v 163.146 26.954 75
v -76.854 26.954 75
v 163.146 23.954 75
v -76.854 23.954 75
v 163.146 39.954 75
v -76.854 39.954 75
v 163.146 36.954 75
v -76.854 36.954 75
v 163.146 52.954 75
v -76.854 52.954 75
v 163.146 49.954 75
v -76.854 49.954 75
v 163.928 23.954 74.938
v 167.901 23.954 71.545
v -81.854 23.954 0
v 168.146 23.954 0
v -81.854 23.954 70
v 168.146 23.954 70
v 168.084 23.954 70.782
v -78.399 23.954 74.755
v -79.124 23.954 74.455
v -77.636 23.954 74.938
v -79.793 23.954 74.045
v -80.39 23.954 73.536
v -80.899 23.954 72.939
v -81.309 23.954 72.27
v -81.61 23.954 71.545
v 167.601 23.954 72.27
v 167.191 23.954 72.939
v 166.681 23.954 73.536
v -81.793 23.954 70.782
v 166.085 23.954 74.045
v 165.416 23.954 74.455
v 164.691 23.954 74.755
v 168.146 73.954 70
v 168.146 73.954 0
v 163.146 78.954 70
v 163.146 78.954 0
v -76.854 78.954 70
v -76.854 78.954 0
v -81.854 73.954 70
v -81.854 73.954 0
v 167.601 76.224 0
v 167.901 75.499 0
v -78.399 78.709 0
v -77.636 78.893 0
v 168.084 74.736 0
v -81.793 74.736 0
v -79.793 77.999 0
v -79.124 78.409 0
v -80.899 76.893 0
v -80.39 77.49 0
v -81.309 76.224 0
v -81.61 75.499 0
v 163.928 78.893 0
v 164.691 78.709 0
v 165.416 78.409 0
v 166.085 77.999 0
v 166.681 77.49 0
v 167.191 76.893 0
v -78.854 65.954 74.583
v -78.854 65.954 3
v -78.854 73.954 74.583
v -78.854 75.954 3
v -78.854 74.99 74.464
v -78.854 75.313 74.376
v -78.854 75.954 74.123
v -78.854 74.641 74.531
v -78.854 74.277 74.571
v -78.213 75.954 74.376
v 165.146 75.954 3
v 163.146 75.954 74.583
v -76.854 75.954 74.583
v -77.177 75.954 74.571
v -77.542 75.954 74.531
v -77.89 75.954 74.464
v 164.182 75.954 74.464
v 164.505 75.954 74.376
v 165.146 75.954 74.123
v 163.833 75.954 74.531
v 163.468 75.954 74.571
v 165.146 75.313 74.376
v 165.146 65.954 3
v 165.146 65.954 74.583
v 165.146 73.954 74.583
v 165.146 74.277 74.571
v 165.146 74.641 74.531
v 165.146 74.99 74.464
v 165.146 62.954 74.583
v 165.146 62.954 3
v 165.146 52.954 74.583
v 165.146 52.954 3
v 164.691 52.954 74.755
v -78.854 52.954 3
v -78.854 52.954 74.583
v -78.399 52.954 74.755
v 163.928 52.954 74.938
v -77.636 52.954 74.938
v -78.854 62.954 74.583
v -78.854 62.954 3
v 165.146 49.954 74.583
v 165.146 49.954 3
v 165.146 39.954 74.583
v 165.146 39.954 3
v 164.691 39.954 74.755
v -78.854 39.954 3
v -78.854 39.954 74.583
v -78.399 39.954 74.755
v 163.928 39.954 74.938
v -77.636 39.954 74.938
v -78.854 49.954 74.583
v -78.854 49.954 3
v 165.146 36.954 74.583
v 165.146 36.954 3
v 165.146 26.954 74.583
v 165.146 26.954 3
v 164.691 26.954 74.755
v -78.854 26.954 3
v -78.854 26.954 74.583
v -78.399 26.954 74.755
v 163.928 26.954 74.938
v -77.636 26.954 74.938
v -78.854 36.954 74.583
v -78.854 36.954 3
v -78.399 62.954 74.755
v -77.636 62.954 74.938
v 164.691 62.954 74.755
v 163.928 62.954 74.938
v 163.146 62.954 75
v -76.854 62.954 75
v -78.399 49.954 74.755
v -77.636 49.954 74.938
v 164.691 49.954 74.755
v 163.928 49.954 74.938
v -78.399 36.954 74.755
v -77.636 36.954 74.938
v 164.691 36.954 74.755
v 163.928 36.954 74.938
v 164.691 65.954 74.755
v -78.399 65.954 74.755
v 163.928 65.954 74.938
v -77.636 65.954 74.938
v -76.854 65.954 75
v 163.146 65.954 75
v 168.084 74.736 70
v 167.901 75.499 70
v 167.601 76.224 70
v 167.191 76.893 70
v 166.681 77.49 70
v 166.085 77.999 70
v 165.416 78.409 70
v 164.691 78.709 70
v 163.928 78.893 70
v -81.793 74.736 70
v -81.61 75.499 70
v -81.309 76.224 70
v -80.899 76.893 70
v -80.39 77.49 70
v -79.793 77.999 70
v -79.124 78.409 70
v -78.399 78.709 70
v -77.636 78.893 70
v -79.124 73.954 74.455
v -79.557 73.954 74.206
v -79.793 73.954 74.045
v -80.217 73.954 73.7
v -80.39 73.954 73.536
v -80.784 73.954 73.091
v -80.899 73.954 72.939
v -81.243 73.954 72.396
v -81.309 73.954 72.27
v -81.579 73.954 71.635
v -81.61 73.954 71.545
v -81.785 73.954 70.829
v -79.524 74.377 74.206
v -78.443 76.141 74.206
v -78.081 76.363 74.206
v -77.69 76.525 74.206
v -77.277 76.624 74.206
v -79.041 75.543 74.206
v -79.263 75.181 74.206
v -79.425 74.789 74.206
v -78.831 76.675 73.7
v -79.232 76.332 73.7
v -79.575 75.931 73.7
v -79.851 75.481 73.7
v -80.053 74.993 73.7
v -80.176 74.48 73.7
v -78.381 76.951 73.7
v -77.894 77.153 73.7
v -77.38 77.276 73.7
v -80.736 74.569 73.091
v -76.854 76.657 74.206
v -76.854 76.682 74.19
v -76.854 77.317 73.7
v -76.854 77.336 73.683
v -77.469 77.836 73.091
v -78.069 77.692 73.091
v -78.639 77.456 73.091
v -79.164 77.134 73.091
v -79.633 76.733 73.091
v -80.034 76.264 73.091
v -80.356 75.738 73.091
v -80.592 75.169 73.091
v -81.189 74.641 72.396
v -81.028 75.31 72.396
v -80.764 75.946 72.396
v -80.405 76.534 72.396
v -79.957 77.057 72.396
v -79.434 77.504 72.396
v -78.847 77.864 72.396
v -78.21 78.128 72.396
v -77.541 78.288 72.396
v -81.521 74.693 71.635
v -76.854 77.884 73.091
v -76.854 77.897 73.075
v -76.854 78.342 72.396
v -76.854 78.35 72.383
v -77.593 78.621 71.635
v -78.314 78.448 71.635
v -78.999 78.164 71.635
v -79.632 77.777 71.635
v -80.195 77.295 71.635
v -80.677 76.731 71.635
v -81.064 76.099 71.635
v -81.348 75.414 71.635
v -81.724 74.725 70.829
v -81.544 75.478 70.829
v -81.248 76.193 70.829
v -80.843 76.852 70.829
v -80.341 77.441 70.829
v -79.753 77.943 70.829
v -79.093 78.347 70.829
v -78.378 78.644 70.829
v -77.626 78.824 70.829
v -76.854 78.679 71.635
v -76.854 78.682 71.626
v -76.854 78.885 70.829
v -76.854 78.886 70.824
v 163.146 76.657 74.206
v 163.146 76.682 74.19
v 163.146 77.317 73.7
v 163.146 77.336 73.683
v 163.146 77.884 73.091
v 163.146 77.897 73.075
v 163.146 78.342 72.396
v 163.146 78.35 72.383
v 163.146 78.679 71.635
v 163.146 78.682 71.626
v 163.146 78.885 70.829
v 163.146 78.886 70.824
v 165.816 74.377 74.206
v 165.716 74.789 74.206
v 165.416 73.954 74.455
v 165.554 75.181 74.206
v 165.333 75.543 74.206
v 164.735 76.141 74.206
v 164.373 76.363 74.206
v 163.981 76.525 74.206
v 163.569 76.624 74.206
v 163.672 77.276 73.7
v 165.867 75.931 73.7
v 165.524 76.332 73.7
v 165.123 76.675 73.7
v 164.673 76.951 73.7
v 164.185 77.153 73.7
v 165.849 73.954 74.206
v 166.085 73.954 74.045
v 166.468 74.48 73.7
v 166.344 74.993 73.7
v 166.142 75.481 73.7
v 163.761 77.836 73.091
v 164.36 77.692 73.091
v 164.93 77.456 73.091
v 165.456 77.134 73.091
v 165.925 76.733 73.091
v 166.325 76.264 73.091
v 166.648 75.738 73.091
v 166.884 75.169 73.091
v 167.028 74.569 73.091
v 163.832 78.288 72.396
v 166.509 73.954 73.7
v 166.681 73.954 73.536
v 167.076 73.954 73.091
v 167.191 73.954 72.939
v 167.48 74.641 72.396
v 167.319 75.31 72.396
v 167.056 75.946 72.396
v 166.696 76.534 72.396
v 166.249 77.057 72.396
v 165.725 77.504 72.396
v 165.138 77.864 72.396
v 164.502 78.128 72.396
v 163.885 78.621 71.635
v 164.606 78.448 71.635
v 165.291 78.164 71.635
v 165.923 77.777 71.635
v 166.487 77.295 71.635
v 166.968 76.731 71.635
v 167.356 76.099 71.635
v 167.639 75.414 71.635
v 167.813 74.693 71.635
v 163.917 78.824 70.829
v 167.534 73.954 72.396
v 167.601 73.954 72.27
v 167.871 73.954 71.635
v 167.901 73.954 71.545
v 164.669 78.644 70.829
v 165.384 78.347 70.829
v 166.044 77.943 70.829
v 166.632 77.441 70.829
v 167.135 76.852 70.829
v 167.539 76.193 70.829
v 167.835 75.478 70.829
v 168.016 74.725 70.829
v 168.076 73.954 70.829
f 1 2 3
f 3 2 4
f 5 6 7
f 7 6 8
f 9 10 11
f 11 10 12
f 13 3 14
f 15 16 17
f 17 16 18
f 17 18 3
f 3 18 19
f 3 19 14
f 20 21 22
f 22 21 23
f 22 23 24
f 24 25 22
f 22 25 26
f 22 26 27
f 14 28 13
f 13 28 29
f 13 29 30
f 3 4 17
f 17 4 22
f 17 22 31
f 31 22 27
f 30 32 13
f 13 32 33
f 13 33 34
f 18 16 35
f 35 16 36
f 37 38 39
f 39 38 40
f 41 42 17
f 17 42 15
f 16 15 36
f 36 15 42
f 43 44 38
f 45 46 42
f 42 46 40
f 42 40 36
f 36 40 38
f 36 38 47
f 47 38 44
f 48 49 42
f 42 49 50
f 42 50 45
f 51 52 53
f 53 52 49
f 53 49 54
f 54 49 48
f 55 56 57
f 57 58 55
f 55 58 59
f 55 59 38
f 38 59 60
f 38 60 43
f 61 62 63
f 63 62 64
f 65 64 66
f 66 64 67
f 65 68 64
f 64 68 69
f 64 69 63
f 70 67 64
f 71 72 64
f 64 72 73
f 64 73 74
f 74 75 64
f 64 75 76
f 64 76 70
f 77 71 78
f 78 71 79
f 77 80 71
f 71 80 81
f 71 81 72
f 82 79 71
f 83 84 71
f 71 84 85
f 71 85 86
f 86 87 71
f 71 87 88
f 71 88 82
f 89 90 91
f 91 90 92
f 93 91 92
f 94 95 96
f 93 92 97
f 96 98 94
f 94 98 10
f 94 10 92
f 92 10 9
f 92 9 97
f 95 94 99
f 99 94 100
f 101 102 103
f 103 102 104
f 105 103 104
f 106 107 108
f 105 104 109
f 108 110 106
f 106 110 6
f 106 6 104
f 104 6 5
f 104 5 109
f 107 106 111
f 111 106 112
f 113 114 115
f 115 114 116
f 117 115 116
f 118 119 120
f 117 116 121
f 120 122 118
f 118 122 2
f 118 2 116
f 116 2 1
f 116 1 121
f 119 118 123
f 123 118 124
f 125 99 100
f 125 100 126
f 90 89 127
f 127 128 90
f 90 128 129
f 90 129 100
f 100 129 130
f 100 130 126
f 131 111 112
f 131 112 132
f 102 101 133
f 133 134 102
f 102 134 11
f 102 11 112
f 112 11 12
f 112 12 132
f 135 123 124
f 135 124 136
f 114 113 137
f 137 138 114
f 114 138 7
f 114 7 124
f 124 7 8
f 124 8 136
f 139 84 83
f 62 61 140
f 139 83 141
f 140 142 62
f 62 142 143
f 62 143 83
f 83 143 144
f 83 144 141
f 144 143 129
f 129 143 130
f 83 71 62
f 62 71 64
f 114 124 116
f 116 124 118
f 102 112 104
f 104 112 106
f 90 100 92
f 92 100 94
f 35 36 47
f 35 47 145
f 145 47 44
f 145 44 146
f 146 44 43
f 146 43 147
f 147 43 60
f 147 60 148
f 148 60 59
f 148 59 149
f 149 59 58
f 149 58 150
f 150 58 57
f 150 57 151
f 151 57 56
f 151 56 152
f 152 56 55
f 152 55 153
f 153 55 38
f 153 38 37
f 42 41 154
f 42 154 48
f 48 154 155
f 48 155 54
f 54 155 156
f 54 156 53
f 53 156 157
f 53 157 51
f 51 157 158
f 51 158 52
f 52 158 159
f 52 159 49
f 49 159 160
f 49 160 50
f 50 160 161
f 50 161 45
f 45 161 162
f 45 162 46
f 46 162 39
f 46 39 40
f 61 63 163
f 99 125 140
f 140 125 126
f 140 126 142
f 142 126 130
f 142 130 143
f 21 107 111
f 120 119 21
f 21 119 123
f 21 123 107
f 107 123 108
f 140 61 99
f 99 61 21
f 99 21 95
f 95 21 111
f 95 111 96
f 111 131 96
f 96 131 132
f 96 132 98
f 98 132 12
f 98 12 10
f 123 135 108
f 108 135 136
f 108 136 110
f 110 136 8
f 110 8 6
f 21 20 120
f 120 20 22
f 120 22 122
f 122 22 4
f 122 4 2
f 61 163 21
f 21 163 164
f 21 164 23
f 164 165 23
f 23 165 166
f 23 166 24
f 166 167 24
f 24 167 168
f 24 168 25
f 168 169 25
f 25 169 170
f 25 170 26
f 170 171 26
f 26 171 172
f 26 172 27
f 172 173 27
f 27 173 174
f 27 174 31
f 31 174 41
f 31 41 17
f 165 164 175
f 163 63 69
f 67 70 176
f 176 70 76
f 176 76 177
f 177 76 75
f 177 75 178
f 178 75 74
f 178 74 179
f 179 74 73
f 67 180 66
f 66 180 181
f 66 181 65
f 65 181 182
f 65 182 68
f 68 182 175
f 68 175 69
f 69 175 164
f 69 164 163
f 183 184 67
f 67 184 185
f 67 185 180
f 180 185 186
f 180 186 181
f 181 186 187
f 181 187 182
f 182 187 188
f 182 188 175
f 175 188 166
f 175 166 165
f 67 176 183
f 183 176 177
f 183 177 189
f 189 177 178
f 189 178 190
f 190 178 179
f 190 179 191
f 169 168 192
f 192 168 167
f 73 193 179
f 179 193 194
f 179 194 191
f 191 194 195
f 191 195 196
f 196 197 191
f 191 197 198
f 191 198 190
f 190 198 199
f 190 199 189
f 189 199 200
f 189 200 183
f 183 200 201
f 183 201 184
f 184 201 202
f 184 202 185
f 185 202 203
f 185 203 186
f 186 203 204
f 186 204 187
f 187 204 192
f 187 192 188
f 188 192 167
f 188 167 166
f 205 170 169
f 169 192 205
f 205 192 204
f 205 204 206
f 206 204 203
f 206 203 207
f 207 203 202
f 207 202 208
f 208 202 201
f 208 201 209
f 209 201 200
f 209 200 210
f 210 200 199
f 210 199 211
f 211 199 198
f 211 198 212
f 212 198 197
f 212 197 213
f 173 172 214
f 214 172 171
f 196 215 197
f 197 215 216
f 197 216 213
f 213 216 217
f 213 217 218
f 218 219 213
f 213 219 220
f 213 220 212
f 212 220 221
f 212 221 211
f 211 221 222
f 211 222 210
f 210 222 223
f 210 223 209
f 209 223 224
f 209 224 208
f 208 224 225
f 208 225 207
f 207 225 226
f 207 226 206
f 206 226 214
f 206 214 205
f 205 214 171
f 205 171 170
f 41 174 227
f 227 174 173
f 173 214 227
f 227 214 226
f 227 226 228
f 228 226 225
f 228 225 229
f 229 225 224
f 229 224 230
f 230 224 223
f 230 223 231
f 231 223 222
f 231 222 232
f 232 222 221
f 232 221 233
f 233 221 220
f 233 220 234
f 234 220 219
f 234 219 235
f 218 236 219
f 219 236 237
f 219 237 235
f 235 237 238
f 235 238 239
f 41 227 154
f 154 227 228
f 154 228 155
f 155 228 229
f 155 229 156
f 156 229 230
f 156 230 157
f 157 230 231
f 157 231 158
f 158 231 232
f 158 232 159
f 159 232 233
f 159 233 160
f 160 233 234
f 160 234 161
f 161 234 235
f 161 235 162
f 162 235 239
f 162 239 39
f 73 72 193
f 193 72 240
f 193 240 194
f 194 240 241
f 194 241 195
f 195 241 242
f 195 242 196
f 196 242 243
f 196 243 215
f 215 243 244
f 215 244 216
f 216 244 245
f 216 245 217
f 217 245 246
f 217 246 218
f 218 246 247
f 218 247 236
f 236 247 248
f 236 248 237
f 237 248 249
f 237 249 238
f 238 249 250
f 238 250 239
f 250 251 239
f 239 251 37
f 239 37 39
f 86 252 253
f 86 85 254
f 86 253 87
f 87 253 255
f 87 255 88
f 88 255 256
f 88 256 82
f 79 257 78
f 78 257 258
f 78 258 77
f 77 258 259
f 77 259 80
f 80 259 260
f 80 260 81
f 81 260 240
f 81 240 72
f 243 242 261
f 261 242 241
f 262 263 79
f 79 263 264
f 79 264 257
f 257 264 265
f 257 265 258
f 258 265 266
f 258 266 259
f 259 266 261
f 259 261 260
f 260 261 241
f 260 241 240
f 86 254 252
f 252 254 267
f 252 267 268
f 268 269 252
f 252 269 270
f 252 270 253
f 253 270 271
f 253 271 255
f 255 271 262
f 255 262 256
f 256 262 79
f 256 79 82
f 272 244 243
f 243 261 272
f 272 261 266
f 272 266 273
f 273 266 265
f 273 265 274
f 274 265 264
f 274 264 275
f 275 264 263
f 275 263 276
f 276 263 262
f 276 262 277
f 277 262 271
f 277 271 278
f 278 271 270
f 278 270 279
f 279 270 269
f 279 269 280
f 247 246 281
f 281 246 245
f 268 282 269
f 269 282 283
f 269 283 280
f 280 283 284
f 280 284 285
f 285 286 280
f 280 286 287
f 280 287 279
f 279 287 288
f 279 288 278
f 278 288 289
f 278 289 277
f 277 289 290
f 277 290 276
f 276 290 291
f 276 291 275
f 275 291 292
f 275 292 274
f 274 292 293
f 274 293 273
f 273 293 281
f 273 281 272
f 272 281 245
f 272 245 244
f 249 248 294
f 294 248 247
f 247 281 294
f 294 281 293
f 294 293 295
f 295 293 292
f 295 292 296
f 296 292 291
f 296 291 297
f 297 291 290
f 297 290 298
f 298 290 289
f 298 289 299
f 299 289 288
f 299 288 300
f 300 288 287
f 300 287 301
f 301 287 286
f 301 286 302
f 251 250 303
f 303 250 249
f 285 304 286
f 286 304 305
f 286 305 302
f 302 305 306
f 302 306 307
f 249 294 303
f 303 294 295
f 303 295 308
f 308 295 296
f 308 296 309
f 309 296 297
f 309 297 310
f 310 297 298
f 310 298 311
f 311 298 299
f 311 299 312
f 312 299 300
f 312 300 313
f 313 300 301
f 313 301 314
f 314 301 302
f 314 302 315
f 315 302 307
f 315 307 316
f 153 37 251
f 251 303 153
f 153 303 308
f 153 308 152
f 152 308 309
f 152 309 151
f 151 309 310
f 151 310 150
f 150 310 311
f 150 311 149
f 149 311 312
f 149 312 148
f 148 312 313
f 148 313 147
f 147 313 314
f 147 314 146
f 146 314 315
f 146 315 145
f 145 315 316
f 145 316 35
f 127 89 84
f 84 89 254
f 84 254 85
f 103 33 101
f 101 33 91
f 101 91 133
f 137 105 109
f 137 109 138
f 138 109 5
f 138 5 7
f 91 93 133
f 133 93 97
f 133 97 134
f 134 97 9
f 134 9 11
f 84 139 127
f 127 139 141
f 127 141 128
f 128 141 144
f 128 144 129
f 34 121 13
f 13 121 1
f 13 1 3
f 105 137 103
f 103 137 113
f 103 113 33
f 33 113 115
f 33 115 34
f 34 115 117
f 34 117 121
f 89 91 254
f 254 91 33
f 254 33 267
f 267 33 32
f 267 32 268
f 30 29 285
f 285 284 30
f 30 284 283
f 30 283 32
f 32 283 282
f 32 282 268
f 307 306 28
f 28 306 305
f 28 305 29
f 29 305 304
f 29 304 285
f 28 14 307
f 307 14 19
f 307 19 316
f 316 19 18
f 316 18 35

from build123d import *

# Parameters (mm, degrees)
SKETCH1_W           = 3
SKETCH1_H           = 3
SKETCH1_H_2         = 10
SKETCH1_W_2         = 244
BOSS_EXTRUDE1_DEPTH = 3
SKETCH1_4_W         = 3
SKETCH1_4_H         = 3
SKETCH1_4_H_2       = 10
SKETCH1_4_W_2       = 244
BOSS_EXTRUDE2_DEPTH = 75
FILLET1_R           = 5
FILLET2_R           = 5


with BuildPart() as part:
    # Sketch1 → Boss-Extrude1 (new body)
    with BuildSketch(Plane.XY):
        with Locations((-80.354290742, 77.454120293)):
            Rectangle(SKETCH1_W, SKETCH1_H)
        with Locations((-80.354290742, 70.954120293)):
            Rectangle(SKETCH1_W, SKETCH1_H_2)
        with Locations((-80.354290742, 64.454120293)):
            Rectangle(SKETCH1_W, SKETCH1_H)
        with Locations((-80.354290742, 57.954120293)):
            Rectangle(SKETCH1_W, SKETCH1_H_2)
        with Locations((-80.354290742, 51.454120293)):
            Rectangle(SKETCH1_W, SKETCH1_H)
        with Locations((-80.354290742, 44.954120293)):
            Rectangle(SKETCH1_W, SKETCH1_H_2)
        with Locations((-80.354290742, 38.454120293)):
            Rectangle(SKETCH1_W, SKETCH1_H)
        with Locations((-80.354290742, 31.954120293)):
            Rectangle(SKETCH1_W, SKETCH1_H_2)
        with Locations((-80.354290742, 25.454120293)):
            Rectangle(SKETCH1_W, SKETCH1_H)
        with Locations((43.145709258, 25.454120293)):
            Rectangle(SKETCH1_W_2, SKETCH1_H)
        with Locations((43.145709258, 31.954120293)):
            Rectangle(SKETCH1_W_2, SKETCH1_H_2)
        with Locations((43.145709258, 38.454120293)):
            Rectangle(SKETCH1_W_2, SKETCH1_H)
        with Locations((43.145709258, 44.954120293)):
            Rectangle(SKETCH1_W_2, SKETCH1_H_2)
        with Locations((43.145709258, 51.454120293)):
            Rectangle(SKETCH1_W_2, SKETCH1_H)
        with Locations((43.145709258, 57.954120293)):
            Rectangle(SKETCH1_W_2, SKETCH1_H_2)
        with Locations((43.145709258, 64.454120293)):
            Rectangle(SKETCH1_W_2, SKETCH1_H)
        with Locations((43.145709258, 70.954120293)):
            Rectangle(SKETCH1_W_2, SKETCH1_H_2)
        with Locations((43.145709258, 77.454120293)):
            Rectangle(SKETCH1_W_2, SKETCH1_H)
        with Locations((166.645709258, 77.454120293)):
            Rectangle(SKETCH1_W, SKETCH1_H)
        with Locations((166.645709258, 70.954120293)):
            Rectangle(SKETCH1_W, SKETCH1_H_2)
        with Locations((166.645709258, 64.454120293)):
            Rectangle(SKETCH1_W, SKETCH1_H)
        with Locations((166.645709258, 57.954120293)):
            Rectangle(SKETCH1_W, SKETCH1_H_2)
        with Locations((166.645709258, 51.454120293)):
            Rectangle(SKETCH1_W, SKETCH1_H)
        with Locations((166.645709258, 44.954120293)):
            Rectangle(SKETCH1_W, SKETCH1_H_2)
        with Locations((166.645709258, 38.454120293)):
            Rectangle(SKETCH1_W, SKETCH1_H)
        with Locations((166.645709258, 31.954120293)):
            Rectangle(SKETCH1_W, SKETCH1_H_2)
        with Locations((166.645709258, 25.454120293)):
            Rectangle(SKETCH1_W, SKETCH1_H)
    extrude(amount=BOSS_EXTRUDE1_DEPTH)

    # Sketch1<4> → Boss-Extrude2 (add)
    with BuildSketch(Plane.XY):
        with Locations((-80.354290742, 77.454120293)):
            Rectangle(SKETCH1_4_W, SKETCH1_4_H)
        with Locations((-80.354290742, 70.954120293)):
            Rectangle(SKETCH1_4_W, SKETCH1_4_H_2)
        with Locations((-80.354290742, 64.454120293)):
            Rectangle(SKETCH1_4_W, SKETCH1_4_H)
        with Locations((-80.354290742, 57.954120293)):
            Rectangle(SKETCH1_4_W, SKETCH1_4_H_2)
        with Locations((-80.354290742, 51.454120293)):
            Rectangle(SKETCH1_4_W, SKETCH1_4_H)
        with Locations((-80.354290742, 44.954120293)):
            Rectangle(SKETCH1_4_W, SKETCH1_4_H_2)
        with Locations((43.145709258, 51.454120293)):
            Rectangle(SKETCH1_4_W_2, SKETCH1_4_H)
        with Locations((43.145709258, 64.454120293)):
            Rectangle(SKETCH1_4_W_2, SKETCH1_4_H)
        with Locations((43.145709258, 77.454120293)):
            Rectangle(SKETCH1_4_W_2, SKETCH1_4_H)
        with Locations((-80.354290742, 38.454120293)):
            Rectangle(SKETCH1_4_W, SKETCH1_4_H)
        with Locations((-80.354290742, 31.954120293)):
            Rectangle(SKETCH1_4_W, SKETCH1_4_H_2)
        with Locations((-80.354290742, 25.454120293)):
            Rectangle(SKETCH1_4_W, SKETCH1_4_H)
        with Locations((43.145709258, 25.454120293)):
            Rectangle(SKETCH1_4_W_2, SKETCH1_4_H)
        with Locations((43.145709258, 38.454120293)):
            Rectangle(SKETCH1_4_W_2, SKETCH1_4_H)
        with Locations((166.645709258, 77.454120293)):
            Rectangle(SKETCH1_4_W, SKETCH1_4_H)
        with Locations((166.645709258, 70.954120293)):
            Rectangle(SKETCH1_4_W, SKETCH1_4_H_2)
        with Locations((166.645709258, 64.454120293)):
            Rectangle(SKETCH1_4_W, SKETCH1_4_H)
        with Locations((166.645709258, 57.954120293)):
            Rectangle(SKETCH1_4_W, SKETCH1_4_H_2)
        with Locations((166.645709258, 51.454120293)):
            Rectangle(SKETCH1_4_W, SKETCH1_4_H)
        with Locations((166.645709258, 44.954120293)):
            Rectangle(SKETCH1_4_W, SKETCH1_4_H_2)
        with Locations((166.645709258, 38.454120293)):
            Rectangle(SKETCH1_4_W, SKETCH1_4_H)
        with Locations((166.645709258, 31.954120293)):
            Rectangle(SKETCH1_4_W, SKETCH1_4_H_2)
        with Locations((166.645709258, 25.454120293)):
            Rectangle(SKETCH1_4_W, SKETCH1_4_H)
    extrude(amount=BOSS_EXTRUDE2_DEPTH)

    # Fillet1
    fillet1_edges = [part.edges().sort_by_distance(p)[0] for p in [
        (-81.854290742, 78.954120293, 37.5),
        (168.145709258, 78.954120293, 37.5),
    ]]
    fillet(fillet1_edges, radius=FILLET1_R)

    # Fillet2
    # the kernel refuses this fillet: 5 mm, written as the material it takes off along each edge
    with BuildSketch(Plane(origin=(168.145709258, 73.954120293, 75), x_dir=(-1, 0, 0), z_dir=(0, -1, 0)), Plane(origin=(-81.854290742, 11.454120293, 75), x_dir=(1, 0, 0), z_dir=(0, 1, 0))) as fillet2_piece_1:
        with BuildLine():
            CenterArc((FILLET2_R, FILLET2_R), FILLET2_R, 180, 90)
            Line((0, FILLET2_R), (0, 0))
            Line((0, 0), (FILLET2_R, 0))
        make_face()
    extrude(amount=62.5, mode=Mode.SUBTRACT)
    with BuildSketch(Plane(origin=(-76.854290742, 73.954120293, 75), x_dir=(0, 1, 0), z_dir=(1, 0, 0))) as fillet2_piece_2:
        with BuildLine():
            CenterArc((5 - FILLET2_R, -FILLET2_R), FILLET2_R, 0, 90)
            Line((5 - FILLET2_R, 0), (5, 0))
            Line((5, 0), (5, -FILLET2_R))
        make_face()
    revolve(axis=Axis((-76.854290742, 73.954120293, 75), (0, 0, 1)), revolution_arc=90, mode=Mode.SUBTRACT)
    with BuildSketch(Plane(origin=(-76.854290742, 78.954120293, 75), x_dir=(0, 0, -1), z_dir=(1, 0, 0))) as fillet2_piece_3:
        with BuildLine():
            CenterArc((FILLET2_R, -FILLET2_R), FILLET2_R, 90, 90)
            Line((0, -FILLET2_R), (0, 0))
            Line((0, 0), (FILLET2_R, 0))
        make_face()
    extrude(amount=240, mode=Mode.SUBTRACT)
    with BuildSketch(Plane(origin=(163.145709258, 73.954120293, 75), x_dir=(0, 1, 0), z_dir=(-1, 0, 0))) as fillet2_piece_4:
        with BuildLine():
            CenterArc((5 - FILLET2_R, FILLET2_R), FILLET2_R, 270, 90)
            Line((5 - FILLET2_R, 0), (5, 0))
            Line((5, 0), (5, FILLET2_R))
        make_face()
    revolve(axis=Axis((163.145709258, 73.954120293, 75), (0, 0, -1)), revolution_arc=90, mode=Mode.SUBTRACT)


solid = part.part
